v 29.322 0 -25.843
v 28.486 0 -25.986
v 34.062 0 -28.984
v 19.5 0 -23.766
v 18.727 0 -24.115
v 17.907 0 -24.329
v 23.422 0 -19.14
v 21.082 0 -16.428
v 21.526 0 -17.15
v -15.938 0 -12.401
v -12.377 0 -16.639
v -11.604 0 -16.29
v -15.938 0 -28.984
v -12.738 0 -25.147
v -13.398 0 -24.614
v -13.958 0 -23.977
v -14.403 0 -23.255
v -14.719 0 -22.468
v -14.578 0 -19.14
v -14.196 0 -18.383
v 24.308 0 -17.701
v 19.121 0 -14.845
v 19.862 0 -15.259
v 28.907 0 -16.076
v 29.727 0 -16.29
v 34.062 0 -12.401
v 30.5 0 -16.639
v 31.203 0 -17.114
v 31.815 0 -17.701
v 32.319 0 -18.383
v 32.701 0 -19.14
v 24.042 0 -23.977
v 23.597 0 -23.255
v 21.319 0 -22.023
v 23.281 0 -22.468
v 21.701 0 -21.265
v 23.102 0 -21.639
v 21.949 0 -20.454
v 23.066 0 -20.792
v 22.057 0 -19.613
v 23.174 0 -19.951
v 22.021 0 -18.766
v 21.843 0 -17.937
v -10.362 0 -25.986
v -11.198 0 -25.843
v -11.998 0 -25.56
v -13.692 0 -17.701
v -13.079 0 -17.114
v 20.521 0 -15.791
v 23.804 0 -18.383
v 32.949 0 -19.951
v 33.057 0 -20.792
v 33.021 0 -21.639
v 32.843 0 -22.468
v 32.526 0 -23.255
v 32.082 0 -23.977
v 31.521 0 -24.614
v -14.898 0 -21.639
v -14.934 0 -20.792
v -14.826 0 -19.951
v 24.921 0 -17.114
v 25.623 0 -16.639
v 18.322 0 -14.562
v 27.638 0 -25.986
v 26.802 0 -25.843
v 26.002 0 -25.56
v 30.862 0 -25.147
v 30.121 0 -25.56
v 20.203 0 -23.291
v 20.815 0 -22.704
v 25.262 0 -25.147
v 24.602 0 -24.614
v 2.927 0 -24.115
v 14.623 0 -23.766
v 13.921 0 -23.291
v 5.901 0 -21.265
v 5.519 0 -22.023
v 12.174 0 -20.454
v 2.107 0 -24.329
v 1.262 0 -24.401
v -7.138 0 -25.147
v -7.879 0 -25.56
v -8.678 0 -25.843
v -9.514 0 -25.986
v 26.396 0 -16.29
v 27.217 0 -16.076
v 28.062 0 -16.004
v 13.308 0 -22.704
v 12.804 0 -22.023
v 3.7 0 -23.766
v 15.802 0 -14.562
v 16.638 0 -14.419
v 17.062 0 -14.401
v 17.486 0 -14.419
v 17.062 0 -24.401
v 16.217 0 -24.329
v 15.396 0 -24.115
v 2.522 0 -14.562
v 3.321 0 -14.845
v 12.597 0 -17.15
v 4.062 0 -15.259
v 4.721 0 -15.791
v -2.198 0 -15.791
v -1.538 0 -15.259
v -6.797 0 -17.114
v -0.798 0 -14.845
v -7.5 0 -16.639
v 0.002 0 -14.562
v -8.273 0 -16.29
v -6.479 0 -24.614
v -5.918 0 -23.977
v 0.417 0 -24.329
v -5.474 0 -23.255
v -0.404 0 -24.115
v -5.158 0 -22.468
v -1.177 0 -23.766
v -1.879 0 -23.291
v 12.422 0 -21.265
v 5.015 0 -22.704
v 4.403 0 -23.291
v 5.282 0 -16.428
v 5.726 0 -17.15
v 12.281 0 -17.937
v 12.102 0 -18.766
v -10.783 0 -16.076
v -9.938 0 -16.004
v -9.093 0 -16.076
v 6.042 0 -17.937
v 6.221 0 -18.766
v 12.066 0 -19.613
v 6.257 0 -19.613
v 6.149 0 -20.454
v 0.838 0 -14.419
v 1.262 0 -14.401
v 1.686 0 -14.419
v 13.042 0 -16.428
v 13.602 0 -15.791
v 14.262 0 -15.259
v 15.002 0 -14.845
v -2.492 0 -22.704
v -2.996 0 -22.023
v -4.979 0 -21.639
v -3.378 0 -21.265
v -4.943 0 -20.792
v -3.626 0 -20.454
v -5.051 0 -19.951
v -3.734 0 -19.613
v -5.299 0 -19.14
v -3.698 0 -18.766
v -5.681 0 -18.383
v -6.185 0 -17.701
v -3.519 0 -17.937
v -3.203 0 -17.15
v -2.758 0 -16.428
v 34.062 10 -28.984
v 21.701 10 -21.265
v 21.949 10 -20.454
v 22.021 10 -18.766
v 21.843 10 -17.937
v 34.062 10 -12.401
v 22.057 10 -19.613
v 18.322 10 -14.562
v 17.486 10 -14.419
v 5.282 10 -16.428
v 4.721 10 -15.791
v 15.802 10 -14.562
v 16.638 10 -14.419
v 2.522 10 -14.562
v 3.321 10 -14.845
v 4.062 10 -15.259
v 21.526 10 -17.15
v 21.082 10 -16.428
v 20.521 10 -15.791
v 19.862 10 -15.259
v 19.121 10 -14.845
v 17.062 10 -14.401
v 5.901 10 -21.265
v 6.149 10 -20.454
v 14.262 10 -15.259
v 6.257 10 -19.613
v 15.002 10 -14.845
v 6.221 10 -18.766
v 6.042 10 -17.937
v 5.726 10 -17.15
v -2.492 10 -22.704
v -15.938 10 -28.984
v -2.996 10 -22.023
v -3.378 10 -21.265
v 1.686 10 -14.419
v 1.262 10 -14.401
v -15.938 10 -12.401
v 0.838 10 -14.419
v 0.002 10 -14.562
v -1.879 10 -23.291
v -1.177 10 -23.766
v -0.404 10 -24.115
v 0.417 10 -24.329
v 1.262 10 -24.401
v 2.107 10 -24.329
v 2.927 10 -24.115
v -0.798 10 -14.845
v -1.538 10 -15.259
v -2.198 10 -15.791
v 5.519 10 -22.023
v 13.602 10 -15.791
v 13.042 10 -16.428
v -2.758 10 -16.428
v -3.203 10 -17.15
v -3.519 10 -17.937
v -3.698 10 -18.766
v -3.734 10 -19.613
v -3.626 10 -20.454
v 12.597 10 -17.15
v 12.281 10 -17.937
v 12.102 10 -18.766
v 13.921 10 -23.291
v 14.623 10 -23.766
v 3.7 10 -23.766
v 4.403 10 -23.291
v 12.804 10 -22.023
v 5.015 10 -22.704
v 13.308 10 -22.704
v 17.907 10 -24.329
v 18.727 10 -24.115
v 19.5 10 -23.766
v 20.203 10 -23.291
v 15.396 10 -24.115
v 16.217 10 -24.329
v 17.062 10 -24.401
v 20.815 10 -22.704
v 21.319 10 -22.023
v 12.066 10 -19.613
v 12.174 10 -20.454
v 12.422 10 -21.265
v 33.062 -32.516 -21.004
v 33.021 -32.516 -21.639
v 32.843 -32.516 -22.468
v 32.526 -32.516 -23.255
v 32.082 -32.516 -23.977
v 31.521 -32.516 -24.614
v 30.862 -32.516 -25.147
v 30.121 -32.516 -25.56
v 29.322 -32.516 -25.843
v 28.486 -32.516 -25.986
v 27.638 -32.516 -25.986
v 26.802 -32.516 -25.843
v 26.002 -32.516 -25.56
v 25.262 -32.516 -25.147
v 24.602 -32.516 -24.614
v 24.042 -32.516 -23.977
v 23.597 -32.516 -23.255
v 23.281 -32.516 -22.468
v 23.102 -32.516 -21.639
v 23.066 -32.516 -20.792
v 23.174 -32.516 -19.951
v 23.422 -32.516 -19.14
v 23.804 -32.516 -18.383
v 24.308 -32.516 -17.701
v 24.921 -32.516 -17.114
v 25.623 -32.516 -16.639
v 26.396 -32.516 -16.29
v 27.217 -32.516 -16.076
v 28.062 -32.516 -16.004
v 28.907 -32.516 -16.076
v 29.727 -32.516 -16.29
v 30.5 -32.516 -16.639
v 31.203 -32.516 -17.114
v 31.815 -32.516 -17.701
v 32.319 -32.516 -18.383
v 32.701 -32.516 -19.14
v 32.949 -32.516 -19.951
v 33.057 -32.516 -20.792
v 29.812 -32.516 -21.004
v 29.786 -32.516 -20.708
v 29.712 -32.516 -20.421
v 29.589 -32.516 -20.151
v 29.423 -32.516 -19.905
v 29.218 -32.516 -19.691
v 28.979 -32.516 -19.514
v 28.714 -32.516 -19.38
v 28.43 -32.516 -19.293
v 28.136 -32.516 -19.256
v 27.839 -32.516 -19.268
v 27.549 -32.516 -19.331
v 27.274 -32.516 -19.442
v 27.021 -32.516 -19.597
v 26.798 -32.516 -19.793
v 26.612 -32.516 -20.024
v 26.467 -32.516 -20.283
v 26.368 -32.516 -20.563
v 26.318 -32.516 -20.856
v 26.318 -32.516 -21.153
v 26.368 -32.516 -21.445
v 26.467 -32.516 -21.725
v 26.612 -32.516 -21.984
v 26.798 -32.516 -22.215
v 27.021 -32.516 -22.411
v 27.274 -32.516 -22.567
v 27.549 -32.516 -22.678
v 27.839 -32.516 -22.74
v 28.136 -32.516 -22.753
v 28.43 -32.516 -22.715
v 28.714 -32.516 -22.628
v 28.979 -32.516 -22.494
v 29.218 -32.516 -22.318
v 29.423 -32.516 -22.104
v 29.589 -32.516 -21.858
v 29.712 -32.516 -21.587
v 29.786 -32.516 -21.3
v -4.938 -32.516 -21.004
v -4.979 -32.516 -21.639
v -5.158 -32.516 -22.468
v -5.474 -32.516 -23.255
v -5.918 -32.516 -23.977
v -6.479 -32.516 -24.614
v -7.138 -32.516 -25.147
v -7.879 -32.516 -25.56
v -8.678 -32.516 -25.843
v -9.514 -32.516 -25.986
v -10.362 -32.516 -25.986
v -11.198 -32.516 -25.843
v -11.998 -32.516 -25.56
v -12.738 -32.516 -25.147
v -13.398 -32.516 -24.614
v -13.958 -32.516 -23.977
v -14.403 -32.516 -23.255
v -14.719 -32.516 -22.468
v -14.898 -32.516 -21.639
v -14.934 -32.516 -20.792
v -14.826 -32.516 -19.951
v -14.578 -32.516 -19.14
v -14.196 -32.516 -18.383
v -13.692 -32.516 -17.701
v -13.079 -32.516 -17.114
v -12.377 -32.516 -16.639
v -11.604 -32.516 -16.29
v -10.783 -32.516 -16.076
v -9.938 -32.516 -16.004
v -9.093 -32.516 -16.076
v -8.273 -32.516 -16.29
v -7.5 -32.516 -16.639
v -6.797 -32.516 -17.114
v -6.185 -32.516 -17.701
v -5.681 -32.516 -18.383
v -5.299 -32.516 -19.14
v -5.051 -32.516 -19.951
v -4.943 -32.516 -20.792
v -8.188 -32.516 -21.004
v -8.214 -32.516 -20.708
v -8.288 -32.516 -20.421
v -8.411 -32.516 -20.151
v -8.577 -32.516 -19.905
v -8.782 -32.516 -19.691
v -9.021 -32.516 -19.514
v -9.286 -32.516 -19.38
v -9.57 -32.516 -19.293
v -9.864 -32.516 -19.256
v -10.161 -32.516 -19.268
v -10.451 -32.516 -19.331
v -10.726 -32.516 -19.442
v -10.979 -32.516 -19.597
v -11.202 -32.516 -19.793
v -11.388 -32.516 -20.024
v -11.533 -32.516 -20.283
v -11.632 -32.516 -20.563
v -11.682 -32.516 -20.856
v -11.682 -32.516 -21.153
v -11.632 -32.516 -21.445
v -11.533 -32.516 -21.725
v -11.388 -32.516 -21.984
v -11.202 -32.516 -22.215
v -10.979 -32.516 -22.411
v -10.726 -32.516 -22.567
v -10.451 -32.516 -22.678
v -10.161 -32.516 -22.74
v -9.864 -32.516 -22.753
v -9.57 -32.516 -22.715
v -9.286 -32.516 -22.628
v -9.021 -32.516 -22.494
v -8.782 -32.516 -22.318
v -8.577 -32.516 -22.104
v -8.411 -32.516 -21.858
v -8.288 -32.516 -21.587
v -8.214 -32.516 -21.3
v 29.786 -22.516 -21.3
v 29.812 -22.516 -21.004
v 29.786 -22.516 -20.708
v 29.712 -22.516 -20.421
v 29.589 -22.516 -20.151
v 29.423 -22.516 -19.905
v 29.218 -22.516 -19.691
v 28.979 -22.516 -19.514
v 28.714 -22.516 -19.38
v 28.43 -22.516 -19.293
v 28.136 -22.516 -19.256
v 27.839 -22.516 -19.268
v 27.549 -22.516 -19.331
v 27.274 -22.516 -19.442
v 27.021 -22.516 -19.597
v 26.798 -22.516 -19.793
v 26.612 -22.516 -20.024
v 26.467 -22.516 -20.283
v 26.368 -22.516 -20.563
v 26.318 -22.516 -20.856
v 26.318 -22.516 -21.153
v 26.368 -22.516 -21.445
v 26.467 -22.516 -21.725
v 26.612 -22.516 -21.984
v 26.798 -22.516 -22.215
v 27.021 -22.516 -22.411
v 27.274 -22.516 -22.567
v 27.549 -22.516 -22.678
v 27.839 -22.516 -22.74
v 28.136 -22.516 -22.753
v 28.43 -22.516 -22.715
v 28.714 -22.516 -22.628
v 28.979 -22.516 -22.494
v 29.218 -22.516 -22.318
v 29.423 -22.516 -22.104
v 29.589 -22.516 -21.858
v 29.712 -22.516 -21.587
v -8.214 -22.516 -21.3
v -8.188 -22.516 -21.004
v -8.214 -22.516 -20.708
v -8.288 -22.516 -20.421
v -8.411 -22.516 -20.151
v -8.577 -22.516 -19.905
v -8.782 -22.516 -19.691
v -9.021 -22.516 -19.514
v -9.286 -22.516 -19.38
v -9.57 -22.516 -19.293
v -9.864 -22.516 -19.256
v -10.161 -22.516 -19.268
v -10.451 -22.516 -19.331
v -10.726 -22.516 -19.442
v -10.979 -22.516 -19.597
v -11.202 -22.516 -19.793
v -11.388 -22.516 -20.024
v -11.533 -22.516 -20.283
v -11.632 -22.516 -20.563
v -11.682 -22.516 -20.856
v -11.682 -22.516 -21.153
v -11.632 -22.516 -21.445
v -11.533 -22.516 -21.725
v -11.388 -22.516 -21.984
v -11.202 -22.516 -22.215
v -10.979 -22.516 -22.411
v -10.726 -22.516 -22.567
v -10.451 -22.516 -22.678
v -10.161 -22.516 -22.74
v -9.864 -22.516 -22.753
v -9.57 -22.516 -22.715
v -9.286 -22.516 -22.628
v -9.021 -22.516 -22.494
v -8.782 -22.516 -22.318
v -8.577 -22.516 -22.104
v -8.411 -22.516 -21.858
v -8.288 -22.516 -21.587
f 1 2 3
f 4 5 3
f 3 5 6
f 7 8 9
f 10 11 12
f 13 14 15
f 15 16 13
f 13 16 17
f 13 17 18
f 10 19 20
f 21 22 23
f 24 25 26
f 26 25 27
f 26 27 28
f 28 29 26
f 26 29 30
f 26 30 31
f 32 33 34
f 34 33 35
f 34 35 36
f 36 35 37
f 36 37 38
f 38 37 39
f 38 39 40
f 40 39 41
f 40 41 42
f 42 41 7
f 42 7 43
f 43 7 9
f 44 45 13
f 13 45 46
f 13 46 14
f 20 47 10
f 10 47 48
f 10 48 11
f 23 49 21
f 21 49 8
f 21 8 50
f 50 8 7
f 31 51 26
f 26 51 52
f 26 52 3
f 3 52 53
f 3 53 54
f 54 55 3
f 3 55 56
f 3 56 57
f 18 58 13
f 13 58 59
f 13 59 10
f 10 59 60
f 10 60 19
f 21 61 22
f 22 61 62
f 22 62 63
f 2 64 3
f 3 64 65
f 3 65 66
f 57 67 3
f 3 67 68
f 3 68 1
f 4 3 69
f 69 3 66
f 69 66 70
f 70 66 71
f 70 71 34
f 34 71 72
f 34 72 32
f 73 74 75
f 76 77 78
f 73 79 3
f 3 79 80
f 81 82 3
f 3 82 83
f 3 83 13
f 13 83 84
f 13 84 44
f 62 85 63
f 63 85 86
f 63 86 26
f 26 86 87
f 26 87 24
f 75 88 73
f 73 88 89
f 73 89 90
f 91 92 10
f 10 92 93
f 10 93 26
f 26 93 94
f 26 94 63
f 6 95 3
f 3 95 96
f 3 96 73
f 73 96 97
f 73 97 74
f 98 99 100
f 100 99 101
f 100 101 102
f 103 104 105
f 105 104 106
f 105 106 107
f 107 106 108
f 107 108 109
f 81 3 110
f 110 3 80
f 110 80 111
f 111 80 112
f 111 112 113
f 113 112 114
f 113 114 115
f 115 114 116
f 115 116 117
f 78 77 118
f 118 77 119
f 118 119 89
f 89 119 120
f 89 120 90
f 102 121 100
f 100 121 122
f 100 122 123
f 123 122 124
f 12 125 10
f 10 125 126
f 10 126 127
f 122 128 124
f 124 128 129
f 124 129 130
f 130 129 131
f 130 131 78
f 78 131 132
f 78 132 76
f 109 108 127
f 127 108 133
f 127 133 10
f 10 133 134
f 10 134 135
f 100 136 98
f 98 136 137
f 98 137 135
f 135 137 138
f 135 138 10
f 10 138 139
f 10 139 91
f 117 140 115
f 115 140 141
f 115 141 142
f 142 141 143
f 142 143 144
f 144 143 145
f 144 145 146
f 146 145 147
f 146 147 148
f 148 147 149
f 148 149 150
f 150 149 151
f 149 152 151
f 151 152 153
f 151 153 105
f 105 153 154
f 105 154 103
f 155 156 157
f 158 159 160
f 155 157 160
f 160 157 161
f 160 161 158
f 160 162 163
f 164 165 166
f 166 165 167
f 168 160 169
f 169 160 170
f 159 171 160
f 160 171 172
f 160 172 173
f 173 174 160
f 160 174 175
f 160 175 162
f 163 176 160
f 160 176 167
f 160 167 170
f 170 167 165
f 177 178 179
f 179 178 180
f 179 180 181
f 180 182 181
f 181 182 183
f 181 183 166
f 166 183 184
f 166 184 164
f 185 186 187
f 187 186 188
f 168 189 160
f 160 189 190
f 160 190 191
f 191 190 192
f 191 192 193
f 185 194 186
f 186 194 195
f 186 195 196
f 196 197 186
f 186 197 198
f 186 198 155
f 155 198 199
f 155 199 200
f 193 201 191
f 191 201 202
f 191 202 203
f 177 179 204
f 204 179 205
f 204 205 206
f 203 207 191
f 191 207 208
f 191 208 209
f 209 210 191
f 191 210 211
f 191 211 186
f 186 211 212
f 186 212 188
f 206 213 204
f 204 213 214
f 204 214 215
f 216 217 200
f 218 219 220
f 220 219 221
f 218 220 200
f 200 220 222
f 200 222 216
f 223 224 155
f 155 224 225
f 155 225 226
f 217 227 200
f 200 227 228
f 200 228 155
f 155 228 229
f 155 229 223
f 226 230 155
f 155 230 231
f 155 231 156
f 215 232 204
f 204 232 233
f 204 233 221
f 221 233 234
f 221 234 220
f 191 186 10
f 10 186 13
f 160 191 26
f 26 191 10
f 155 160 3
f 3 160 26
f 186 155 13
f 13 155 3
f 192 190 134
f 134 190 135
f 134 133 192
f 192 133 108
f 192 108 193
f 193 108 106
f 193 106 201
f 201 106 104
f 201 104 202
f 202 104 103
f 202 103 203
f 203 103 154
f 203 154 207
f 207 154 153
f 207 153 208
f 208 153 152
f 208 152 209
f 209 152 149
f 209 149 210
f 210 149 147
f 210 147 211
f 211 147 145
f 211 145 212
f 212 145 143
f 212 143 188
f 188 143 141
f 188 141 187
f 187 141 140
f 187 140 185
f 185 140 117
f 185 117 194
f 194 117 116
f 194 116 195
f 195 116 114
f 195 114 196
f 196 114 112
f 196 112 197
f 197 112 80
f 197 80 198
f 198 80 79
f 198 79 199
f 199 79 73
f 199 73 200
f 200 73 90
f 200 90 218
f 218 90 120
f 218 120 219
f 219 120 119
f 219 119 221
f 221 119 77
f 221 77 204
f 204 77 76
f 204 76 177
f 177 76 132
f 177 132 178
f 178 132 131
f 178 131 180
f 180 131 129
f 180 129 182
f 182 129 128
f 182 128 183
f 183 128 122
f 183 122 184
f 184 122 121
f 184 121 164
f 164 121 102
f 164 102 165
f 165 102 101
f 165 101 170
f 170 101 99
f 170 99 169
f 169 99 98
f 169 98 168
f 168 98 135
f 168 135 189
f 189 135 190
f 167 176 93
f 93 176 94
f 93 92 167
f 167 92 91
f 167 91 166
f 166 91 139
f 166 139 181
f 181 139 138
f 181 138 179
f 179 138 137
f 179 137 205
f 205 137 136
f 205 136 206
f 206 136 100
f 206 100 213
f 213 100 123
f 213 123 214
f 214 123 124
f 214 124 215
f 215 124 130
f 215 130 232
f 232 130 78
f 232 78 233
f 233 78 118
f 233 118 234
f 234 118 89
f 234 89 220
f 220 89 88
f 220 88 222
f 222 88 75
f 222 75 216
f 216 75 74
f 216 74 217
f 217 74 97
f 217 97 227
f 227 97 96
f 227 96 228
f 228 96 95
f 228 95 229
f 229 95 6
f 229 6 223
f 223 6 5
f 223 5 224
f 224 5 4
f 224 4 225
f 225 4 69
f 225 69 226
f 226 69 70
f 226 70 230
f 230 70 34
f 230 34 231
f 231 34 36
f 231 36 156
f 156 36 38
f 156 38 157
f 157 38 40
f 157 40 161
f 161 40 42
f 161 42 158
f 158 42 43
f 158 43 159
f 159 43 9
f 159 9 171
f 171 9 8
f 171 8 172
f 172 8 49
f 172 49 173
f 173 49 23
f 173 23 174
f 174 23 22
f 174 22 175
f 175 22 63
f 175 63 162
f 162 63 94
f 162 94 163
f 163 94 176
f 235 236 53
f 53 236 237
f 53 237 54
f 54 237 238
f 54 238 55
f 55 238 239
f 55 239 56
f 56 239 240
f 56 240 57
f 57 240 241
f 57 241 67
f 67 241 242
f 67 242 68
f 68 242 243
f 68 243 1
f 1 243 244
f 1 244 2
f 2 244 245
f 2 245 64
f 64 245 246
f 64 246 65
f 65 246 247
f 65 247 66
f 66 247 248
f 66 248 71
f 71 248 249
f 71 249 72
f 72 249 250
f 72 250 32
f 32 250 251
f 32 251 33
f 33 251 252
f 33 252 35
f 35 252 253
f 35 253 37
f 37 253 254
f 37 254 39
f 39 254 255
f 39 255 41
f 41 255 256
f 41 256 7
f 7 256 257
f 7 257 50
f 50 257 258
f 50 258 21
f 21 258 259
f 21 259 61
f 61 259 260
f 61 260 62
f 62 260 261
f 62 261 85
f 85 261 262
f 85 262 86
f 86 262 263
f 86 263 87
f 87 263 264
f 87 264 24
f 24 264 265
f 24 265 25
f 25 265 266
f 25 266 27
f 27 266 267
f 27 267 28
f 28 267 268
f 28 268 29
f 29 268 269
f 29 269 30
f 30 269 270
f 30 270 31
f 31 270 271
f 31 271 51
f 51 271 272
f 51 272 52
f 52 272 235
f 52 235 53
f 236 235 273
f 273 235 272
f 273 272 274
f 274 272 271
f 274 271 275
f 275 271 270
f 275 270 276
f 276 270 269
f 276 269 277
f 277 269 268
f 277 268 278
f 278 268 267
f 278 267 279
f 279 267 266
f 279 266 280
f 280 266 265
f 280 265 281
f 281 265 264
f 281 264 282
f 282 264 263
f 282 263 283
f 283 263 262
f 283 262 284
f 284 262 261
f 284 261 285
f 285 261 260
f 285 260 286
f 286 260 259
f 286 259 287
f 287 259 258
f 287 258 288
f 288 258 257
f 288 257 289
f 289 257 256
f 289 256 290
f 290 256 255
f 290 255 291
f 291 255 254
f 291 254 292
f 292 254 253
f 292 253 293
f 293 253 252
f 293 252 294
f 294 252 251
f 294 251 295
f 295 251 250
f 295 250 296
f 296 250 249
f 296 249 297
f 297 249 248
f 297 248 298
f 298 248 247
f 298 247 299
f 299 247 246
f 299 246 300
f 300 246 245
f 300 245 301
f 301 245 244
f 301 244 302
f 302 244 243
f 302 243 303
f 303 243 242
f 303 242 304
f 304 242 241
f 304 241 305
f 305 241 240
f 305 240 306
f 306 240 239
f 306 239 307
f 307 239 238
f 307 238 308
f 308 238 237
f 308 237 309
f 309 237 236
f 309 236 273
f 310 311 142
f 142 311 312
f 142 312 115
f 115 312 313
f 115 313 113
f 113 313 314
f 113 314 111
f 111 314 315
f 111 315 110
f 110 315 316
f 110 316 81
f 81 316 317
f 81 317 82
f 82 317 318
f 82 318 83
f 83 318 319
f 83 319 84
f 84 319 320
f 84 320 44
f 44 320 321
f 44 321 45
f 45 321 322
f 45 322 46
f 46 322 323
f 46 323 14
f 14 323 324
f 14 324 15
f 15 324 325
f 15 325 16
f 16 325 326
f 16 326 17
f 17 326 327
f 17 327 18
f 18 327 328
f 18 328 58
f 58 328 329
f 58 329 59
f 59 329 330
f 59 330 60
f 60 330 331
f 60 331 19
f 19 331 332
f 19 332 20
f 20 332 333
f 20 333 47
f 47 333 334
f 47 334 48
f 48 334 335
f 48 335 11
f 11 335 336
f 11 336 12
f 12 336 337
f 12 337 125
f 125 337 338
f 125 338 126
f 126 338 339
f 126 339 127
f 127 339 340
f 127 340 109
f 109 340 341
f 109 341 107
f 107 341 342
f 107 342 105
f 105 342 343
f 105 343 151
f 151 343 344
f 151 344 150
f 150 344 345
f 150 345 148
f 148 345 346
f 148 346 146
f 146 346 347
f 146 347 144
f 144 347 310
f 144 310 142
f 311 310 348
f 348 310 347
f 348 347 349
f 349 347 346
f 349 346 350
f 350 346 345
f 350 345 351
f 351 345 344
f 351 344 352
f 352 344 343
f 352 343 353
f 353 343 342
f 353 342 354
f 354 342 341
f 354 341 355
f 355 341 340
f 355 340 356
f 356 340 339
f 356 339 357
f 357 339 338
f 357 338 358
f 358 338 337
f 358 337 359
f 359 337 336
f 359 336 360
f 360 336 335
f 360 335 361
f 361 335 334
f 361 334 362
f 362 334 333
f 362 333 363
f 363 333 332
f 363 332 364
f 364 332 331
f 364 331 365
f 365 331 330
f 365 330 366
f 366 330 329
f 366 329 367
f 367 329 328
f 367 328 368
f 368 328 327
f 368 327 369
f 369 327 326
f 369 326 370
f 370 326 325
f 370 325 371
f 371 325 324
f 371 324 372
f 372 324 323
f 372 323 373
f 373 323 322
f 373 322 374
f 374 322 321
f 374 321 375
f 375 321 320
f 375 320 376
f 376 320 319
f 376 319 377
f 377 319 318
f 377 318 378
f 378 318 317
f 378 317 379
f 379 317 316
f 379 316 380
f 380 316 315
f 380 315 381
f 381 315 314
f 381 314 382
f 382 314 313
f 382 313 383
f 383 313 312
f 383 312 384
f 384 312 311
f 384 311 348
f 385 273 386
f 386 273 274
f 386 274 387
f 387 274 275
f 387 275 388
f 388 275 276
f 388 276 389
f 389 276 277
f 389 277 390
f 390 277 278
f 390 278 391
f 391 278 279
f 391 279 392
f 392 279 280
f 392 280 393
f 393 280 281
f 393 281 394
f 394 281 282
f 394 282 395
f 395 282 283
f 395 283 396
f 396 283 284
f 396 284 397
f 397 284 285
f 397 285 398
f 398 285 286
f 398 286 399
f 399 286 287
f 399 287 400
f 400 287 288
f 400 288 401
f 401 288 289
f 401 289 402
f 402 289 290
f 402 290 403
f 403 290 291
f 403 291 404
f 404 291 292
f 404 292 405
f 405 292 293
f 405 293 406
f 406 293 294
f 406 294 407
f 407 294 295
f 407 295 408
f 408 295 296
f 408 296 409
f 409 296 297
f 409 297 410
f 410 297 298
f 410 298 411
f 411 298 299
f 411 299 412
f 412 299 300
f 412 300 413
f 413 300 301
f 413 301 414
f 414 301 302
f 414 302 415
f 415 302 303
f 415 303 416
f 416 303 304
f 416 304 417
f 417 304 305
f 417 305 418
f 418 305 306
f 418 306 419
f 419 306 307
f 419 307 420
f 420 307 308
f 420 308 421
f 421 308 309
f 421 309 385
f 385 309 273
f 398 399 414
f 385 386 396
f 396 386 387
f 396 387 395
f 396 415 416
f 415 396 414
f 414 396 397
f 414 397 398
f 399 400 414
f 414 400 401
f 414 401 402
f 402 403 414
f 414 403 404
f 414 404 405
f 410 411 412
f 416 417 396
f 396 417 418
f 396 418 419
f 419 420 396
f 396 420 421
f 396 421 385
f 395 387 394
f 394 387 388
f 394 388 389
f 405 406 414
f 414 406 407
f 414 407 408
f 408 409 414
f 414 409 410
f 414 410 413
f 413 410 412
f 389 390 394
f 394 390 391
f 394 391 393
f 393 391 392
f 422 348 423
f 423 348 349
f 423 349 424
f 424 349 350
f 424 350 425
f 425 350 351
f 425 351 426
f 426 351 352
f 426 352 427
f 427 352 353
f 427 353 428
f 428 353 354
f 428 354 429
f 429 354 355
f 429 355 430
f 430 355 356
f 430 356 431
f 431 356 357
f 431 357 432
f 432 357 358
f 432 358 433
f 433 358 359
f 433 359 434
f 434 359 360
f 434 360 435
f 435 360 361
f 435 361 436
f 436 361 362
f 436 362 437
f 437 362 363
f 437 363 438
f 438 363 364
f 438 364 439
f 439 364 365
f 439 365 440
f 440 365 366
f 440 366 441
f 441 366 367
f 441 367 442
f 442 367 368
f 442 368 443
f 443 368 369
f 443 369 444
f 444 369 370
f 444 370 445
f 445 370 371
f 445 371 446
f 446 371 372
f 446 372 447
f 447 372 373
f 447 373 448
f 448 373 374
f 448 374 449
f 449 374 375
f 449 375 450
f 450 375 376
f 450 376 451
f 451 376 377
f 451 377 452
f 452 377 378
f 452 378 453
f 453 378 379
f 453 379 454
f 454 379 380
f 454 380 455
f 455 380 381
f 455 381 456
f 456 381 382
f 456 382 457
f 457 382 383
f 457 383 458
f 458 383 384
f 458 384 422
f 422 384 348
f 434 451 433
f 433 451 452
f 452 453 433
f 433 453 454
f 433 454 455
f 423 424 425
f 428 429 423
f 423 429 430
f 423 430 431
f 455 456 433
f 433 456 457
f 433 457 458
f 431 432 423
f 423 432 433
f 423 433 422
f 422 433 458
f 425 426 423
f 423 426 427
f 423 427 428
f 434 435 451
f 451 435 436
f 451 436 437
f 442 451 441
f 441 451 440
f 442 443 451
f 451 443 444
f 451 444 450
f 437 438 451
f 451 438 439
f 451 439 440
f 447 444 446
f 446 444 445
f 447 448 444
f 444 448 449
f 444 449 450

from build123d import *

# Parameters (mm, degrees)
SKETCH1_W           = 50
SKETCH1_H           = 16.582990108
SKETCH1_R           = 5
BOSS_EXTRUDE1_DEPTH = 10
SKETCH2_R           = 5
BOSS_EXTRUDE2_DEPTH = 32.5158
SKETCH3_R           = 1.75
CUT_EXTRUDE1_DEPTH  = 10


with BuildPart() as part:
    # Sketch1 → Boss-Extrude1 (new body)
    with BuildSketch(Plane(origin=(0, 0, 0), x_dir=(1, 0, 0), z_dir=(0, 1, 0))):
        with Locations((9.061664817, 20.692573909)):
            Rectangle(SKETCH1_W, SKETCH1_H)
        with Locations((1.261664817, 19.401078855)):
            Circle(SKETCH1_R, mode=Mode.SUBTRACT)
        with Locations((17.061664817, 19.401078855)):
            Circle(SKETCH1_R, mode=Mode.SUBTRACT)
    extrude(amount=BOSS_EXTRUDE1_DEPTH)

    # Sketch2 → Boss-Extrude2 (add)
    with BuildSketch(Plane.XZ):
        with Locations((28.061664817, -21.004215915)):
            Circle(SKETCH2_R)
        with Locations((-9.938335183, -21.004215915)):
            Circle(SKETCH2_R)
    extrude(amount=BOSS_EXTRUDE2_DEPTH)

    # Sketch3 → Cut-Extrude1 (cut)
    with BuildSketch(Plane.XZ.offset(32.5158)):
        with Locations((28.061664817, -21.004215915)):
            Circle(SKETCH3_R)
        with Locations((-9.938335183, -21.004215915)):
            Circle(SKETCH3_R)
    extrude(amount=-CUT_EXTRUDE1_DEPTH, mode=Mode.SUBTRACT)


solid = part.part
